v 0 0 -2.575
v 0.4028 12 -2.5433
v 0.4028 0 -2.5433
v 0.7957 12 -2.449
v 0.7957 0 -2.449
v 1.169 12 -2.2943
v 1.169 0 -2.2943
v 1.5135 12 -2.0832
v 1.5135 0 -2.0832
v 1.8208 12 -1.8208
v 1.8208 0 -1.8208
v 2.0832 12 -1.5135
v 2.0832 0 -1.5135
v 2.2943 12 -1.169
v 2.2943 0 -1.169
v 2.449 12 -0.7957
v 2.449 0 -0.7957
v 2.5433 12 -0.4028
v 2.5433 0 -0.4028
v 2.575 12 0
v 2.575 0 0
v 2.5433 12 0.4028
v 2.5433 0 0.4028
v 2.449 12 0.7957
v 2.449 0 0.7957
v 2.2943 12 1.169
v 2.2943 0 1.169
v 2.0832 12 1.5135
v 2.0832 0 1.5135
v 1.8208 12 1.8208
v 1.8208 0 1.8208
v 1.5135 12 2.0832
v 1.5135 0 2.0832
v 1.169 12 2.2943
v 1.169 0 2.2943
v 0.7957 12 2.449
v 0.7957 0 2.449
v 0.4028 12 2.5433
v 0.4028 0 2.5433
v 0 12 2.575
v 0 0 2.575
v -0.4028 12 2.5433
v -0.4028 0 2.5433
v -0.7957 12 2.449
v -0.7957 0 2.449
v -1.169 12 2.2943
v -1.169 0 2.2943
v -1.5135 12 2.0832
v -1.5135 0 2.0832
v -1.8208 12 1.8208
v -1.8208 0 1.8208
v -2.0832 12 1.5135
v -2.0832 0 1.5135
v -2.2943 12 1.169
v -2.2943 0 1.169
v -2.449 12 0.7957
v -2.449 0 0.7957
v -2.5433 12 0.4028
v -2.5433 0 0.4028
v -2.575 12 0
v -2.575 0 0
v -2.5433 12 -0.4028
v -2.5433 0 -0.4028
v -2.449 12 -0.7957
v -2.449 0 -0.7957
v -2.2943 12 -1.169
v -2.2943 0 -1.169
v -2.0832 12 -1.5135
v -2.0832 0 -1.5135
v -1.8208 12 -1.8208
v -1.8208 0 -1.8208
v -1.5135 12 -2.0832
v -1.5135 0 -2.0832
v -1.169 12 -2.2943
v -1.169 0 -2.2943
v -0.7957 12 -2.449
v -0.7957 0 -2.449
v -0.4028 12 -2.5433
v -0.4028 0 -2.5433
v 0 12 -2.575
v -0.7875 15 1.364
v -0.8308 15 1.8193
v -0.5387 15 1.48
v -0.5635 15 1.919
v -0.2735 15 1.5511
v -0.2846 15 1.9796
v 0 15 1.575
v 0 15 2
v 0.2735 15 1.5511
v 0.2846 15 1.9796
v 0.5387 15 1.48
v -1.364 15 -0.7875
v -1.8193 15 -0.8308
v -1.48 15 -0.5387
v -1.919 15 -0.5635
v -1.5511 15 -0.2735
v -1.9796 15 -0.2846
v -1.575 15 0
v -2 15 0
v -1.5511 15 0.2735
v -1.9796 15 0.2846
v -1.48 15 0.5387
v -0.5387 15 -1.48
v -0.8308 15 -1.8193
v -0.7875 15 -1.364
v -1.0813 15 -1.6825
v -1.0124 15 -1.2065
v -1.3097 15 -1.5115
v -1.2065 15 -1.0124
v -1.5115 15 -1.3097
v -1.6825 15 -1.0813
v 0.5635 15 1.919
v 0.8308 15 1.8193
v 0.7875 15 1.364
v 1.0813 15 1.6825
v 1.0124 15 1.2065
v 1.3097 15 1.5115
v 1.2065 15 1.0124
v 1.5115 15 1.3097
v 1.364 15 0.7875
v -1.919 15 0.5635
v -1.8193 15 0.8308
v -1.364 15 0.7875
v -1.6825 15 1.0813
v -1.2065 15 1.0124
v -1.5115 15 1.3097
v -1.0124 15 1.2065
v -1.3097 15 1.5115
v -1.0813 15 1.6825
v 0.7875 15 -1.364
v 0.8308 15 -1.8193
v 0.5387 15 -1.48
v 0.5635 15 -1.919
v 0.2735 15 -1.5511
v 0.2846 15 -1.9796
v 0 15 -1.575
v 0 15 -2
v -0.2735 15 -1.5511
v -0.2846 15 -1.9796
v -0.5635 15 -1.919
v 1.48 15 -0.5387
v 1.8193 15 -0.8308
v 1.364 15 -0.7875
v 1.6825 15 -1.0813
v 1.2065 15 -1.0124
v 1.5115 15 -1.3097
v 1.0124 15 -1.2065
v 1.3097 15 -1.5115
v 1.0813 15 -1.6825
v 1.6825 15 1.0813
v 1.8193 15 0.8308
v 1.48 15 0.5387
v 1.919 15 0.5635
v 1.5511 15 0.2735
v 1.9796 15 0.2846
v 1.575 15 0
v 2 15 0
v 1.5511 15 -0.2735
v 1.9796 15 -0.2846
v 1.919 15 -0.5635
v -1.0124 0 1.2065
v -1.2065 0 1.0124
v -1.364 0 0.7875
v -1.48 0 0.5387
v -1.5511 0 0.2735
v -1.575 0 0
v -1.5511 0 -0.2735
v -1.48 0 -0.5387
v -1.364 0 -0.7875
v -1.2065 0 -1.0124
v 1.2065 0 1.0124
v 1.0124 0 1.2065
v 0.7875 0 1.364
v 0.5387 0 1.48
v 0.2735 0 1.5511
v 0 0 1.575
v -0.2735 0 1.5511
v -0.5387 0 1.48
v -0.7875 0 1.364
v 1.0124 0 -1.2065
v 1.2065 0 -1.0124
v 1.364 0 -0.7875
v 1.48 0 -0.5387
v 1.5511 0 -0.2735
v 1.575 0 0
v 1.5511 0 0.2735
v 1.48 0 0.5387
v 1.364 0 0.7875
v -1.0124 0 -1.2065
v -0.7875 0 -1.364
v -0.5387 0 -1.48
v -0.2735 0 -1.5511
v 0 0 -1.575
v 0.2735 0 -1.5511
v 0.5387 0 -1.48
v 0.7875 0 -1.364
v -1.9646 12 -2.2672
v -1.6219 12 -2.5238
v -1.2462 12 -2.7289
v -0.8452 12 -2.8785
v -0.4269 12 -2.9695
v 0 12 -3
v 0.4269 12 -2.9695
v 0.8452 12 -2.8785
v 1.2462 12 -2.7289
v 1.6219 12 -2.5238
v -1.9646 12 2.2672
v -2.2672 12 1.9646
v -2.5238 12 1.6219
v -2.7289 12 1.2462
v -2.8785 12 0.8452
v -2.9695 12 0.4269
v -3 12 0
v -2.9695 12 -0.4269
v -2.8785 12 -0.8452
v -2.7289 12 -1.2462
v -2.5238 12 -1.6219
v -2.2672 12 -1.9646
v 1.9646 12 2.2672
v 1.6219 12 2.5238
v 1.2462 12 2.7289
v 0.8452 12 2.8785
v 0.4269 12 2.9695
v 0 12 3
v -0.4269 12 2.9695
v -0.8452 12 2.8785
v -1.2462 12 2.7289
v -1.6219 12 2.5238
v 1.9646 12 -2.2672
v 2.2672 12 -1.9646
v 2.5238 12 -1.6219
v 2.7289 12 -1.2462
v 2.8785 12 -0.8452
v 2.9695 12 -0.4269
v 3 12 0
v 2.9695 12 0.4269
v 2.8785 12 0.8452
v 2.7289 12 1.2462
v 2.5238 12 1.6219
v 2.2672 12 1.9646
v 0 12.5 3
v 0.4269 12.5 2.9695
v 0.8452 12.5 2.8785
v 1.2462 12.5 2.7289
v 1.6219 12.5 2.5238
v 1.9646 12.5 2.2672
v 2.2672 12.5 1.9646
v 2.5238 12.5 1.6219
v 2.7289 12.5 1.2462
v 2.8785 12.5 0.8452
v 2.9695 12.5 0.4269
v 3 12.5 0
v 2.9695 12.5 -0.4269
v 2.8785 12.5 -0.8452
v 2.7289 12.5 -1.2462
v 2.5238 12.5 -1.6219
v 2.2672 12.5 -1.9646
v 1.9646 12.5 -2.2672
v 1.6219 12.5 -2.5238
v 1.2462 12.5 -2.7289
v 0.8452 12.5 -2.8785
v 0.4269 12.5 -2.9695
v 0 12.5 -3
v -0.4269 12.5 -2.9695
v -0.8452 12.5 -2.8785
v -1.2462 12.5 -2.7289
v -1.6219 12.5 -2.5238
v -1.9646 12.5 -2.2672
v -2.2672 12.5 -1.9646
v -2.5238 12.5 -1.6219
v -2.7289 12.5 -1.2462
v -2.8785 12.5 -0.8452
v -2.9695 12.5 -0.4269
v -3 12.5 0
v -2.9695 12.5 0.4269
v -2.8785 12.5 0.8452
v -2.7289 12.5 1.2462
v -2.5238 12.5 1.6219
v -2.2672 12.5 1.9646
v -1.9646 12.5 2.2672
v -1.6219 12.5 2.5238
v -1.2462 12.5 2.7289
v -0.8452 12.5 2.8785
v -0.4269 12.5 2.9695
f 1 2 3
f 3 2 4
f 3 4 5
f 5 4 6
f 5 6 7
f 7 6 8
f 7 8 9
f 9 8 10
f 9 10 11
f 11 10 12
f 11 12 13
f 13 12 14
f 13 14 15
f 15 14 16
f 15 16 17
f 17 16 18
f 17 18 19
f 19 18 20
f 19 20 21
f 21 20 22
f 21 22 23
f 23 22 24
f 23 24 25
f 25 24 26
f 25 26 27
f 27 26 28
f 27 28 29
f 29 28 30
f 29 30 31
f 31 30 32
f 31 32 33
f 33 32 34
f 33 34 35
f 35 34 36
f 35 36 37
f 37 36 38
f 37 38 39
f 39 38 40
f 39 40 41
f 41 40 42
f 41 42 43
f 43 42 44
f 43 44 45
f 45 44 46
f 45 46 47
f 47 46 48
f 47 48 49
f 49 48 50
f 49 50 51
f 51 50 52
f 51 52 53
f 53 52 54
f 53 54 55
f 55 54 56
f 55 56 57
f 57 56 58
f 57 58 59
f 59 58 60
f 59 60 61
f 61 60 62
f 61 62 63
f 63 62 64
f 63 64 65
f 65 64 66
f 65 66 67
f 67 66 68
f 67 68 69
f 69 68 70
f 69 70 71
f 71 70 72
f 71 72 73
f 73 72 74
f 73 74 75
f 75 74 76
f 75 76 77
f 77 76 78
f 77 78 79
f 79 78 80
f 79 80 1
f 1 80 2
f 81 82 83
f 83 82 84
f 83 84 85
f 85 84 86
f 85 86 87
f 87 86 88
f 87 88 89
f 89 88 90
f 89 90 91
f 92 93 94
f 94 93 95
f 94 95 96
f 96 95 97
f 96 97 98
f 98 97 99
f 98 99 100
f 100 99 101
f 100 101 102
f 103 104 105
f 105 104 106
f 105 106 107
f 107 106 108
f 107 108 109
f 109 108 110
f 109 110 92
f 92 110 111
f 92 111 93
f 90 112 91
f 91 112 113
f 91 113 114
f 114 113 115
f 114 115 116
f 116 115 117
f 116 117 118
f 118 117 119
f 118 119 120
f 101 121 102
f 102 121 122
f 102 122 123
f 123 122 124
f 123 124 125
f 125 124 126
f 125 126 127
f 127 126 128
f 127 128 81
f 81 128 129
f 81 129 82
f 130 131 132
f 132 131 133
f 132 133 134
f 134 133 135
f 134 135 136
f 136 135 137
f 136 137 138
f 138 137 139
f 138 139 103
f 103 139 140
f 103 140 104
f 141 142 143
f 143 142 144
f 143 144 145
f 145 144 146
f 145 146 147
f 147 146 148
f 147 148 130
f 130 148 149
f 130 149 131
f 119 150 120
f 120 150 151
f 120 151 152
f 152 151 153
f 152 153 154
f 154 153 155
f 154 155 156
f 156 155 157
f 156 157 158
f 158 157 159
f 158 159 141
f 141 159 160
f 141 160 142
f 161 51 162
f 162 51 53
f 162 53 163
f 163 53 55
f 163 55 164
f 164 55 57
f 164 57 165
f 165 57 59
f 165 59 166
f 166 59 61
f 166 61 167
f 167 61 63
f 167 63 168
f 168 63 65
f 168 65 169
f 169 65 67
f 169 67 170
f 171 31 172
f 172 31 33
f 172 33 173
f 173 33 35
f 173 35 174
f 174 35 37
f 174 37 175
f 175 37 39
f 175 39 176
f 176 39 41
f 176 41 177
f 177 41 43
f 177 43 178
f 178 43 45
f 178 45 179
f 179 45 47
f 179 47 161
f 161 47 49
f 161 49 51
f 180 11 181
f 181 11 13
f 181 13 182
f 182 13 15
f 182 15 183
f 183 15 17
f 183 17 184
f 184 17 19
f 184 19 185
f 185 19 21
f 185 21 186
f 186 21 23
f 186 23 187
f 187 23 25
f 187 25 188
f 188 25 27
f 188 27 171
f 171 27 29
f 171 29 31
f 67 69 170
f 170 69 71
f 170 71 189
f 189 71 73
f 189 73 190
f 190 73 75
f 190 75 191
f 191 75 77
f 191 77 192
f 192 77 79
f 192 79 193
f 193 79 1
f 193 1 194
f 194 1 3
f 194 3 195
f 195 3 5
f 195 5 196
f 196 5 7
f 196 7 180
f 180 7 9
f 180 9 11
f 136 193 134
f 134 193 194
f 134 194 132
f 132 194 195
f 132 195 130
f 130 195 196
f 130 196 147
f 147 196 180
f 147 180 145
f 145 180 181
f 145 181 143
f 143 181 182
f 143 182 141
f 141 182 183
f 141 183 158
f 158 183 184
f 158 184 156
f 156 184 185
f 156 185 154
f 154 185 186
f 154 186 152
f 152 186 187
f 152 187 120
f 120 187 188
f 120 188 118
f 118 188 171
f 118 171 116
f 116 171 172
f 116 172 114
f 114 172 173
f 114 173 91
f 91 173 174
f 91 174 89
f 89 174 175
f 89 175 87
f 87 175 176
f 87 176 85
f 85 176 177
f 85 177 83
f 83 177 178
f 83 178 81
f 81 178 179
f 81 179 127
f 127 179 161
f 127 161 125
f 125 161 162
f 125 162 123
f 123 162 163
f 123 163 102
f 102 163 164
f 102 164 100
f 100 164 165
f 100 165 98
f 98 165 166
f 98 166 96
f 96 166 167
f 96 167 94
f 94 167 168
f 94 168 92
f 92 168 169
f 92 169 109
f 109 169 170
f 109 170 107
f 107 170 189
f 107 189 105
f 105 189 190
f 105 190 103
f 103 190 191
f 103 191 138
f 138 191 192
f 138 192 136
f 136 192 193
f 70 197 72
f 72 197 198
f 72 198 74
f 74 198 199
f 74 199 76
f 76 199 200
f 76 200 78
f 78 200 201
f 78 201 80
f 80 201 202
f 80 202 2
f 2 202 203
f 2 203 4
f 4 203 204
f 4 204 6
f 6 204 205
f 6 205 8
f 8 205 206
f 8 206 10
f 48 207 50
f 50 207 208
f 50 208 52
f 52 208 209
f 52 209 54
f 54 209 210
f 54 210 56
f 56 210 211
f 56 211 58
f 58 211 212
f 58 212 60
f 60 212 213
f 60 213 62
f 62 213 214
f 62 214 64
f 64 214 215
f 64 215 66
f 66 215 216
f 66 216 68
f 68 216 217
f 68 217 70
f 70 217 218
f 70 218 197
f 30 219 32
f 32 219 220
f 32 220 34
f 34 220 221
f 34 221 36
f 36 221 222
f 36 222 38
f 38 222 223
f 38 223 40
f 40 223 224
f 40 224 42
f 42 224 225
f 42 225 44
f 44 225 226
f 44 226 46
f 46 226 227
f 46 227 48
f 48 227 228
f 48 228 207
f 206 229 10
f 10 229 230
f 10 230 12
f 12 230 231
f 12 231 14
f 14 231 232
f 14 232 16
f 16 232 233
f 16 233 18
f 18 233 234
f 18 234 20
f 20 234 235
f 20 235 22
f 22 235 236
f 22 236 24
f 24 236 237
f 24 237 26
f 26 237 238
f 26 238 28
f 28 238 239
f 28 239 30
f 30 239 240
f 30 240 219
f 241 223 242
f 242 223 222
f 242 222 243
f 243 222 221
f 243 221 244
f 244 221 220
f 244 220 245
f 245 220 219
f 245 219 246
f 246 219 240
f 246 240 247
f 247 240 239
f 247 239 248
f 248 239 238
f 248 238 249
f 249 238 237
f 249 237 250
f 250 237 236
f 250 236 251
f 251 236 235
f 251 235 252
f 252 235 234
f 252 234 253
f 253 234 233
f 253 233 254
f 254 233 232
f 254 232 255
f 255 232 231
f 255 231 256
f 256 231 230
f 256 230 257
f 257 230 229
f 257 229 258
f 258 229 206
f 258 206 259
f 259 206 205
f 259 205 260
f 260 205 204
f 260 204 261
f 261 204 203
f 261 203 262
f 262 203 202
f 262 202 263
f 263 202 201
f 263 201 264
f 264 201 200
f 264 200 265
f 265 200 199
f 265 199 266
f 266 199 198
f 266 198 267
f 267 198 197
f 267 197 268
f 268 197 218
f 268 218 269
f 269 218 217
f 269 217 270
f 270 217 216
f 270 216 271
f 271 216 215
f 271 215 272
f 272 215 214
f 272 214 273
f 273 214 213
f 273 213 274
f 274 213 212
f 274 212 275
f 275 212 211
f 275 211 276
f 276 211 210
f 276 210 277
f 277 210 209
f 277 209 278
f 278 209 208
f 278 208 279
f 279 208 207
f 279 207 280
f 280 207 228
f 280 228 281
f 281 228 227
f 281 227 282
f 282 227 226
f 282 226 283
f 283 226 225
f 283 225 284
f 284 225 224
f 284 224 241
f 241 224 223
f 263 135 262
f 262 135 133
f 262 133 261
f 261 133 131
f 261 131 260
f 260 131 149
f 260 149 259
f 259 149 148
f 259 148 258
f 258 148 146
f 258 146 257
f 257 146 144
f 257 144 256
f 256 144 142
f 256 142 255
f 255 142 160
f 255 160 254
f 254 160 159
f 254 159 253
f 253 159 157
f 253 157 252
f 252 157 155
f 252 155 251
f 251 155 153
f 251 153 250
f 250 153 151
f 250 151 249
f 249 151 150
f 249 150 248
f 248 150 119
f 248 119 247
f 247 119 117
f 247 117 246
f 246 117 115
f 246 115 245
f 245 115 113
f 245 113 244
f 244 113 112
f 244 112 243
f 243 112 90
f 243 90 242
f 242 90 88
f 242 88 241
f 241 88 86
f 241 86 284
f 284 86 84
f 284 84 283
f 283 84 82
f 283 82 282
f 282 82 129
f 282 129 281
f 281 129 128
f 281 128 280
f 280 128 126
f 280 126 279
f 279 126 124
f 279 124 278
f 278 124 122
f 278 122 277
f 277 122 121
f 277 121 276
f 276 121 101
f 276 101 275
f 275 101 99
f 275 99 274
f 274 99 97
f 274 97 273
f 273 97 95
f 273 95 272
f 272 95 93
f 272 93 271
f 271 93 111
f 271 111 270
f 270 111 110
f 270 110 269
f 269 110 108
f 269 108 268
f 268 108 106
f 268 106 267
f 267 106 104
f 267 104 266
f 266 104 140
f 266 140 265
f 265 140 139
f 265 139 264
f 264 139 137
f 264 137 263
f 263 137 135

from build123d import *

# Parameters (mm, degrees)
SKETCH1_R           = 2.575
SKETCH1_R_2         = 1.575
BOSS_EXTRUDE1_DEPTH = 15
SKETCH2_R           = 3
SKETCH2_R_2         = 1.575
BOSS_EXTRUDE2_DEPTH = 3
CHAMFER1_SIZE       = 2.5
CHAMFER1_SIZE2      = 1


with BuildPart() as part:
    # Sketch1 → Boss-Extrude1 (new body)
    with BuildSketch(Plane(origin=(0, 0, 0), x_dir=(1, 0, 0), z_dir=(0, 1, 0))):
        Circle(SKETCH1_R)
        Circle(SKETCH1_R_2, mode=Mode.SUBTRACT)
    extrude(amount=BOSS_EXTRUDE1_DEPTH)

    # Sketch2 → Boss-Extrude2 (add)
    with BuildSketch(Plane(origin=(0, 15, 0), x_dir=(1, 0, 0), z_dir=(0, 1, 0))):
        Circle(SKETCH2_R)
        Circle(SKETCH2_R_2, mode=Mode.SUBTRACT)
    extrude(amount=-BOSS_EXTRUDE2_DEPTH)

    # Chamfer1
    chamfer1_edges = [part.edges().sort_by_distance(p)[0] for p in [
        (-3, 15, 0),
    ]]
    chamfer1_side = [part.faces().sort_by_distance(p)[0] for p in [
        (-3, 13.5, 0),
    ]]
    chamfer(chamfer1_edges, length=CHAMFER1_SIZE, length2=CHAMFER1_SIZE2, reference=chamfer1_side[0])


solid = part.part
